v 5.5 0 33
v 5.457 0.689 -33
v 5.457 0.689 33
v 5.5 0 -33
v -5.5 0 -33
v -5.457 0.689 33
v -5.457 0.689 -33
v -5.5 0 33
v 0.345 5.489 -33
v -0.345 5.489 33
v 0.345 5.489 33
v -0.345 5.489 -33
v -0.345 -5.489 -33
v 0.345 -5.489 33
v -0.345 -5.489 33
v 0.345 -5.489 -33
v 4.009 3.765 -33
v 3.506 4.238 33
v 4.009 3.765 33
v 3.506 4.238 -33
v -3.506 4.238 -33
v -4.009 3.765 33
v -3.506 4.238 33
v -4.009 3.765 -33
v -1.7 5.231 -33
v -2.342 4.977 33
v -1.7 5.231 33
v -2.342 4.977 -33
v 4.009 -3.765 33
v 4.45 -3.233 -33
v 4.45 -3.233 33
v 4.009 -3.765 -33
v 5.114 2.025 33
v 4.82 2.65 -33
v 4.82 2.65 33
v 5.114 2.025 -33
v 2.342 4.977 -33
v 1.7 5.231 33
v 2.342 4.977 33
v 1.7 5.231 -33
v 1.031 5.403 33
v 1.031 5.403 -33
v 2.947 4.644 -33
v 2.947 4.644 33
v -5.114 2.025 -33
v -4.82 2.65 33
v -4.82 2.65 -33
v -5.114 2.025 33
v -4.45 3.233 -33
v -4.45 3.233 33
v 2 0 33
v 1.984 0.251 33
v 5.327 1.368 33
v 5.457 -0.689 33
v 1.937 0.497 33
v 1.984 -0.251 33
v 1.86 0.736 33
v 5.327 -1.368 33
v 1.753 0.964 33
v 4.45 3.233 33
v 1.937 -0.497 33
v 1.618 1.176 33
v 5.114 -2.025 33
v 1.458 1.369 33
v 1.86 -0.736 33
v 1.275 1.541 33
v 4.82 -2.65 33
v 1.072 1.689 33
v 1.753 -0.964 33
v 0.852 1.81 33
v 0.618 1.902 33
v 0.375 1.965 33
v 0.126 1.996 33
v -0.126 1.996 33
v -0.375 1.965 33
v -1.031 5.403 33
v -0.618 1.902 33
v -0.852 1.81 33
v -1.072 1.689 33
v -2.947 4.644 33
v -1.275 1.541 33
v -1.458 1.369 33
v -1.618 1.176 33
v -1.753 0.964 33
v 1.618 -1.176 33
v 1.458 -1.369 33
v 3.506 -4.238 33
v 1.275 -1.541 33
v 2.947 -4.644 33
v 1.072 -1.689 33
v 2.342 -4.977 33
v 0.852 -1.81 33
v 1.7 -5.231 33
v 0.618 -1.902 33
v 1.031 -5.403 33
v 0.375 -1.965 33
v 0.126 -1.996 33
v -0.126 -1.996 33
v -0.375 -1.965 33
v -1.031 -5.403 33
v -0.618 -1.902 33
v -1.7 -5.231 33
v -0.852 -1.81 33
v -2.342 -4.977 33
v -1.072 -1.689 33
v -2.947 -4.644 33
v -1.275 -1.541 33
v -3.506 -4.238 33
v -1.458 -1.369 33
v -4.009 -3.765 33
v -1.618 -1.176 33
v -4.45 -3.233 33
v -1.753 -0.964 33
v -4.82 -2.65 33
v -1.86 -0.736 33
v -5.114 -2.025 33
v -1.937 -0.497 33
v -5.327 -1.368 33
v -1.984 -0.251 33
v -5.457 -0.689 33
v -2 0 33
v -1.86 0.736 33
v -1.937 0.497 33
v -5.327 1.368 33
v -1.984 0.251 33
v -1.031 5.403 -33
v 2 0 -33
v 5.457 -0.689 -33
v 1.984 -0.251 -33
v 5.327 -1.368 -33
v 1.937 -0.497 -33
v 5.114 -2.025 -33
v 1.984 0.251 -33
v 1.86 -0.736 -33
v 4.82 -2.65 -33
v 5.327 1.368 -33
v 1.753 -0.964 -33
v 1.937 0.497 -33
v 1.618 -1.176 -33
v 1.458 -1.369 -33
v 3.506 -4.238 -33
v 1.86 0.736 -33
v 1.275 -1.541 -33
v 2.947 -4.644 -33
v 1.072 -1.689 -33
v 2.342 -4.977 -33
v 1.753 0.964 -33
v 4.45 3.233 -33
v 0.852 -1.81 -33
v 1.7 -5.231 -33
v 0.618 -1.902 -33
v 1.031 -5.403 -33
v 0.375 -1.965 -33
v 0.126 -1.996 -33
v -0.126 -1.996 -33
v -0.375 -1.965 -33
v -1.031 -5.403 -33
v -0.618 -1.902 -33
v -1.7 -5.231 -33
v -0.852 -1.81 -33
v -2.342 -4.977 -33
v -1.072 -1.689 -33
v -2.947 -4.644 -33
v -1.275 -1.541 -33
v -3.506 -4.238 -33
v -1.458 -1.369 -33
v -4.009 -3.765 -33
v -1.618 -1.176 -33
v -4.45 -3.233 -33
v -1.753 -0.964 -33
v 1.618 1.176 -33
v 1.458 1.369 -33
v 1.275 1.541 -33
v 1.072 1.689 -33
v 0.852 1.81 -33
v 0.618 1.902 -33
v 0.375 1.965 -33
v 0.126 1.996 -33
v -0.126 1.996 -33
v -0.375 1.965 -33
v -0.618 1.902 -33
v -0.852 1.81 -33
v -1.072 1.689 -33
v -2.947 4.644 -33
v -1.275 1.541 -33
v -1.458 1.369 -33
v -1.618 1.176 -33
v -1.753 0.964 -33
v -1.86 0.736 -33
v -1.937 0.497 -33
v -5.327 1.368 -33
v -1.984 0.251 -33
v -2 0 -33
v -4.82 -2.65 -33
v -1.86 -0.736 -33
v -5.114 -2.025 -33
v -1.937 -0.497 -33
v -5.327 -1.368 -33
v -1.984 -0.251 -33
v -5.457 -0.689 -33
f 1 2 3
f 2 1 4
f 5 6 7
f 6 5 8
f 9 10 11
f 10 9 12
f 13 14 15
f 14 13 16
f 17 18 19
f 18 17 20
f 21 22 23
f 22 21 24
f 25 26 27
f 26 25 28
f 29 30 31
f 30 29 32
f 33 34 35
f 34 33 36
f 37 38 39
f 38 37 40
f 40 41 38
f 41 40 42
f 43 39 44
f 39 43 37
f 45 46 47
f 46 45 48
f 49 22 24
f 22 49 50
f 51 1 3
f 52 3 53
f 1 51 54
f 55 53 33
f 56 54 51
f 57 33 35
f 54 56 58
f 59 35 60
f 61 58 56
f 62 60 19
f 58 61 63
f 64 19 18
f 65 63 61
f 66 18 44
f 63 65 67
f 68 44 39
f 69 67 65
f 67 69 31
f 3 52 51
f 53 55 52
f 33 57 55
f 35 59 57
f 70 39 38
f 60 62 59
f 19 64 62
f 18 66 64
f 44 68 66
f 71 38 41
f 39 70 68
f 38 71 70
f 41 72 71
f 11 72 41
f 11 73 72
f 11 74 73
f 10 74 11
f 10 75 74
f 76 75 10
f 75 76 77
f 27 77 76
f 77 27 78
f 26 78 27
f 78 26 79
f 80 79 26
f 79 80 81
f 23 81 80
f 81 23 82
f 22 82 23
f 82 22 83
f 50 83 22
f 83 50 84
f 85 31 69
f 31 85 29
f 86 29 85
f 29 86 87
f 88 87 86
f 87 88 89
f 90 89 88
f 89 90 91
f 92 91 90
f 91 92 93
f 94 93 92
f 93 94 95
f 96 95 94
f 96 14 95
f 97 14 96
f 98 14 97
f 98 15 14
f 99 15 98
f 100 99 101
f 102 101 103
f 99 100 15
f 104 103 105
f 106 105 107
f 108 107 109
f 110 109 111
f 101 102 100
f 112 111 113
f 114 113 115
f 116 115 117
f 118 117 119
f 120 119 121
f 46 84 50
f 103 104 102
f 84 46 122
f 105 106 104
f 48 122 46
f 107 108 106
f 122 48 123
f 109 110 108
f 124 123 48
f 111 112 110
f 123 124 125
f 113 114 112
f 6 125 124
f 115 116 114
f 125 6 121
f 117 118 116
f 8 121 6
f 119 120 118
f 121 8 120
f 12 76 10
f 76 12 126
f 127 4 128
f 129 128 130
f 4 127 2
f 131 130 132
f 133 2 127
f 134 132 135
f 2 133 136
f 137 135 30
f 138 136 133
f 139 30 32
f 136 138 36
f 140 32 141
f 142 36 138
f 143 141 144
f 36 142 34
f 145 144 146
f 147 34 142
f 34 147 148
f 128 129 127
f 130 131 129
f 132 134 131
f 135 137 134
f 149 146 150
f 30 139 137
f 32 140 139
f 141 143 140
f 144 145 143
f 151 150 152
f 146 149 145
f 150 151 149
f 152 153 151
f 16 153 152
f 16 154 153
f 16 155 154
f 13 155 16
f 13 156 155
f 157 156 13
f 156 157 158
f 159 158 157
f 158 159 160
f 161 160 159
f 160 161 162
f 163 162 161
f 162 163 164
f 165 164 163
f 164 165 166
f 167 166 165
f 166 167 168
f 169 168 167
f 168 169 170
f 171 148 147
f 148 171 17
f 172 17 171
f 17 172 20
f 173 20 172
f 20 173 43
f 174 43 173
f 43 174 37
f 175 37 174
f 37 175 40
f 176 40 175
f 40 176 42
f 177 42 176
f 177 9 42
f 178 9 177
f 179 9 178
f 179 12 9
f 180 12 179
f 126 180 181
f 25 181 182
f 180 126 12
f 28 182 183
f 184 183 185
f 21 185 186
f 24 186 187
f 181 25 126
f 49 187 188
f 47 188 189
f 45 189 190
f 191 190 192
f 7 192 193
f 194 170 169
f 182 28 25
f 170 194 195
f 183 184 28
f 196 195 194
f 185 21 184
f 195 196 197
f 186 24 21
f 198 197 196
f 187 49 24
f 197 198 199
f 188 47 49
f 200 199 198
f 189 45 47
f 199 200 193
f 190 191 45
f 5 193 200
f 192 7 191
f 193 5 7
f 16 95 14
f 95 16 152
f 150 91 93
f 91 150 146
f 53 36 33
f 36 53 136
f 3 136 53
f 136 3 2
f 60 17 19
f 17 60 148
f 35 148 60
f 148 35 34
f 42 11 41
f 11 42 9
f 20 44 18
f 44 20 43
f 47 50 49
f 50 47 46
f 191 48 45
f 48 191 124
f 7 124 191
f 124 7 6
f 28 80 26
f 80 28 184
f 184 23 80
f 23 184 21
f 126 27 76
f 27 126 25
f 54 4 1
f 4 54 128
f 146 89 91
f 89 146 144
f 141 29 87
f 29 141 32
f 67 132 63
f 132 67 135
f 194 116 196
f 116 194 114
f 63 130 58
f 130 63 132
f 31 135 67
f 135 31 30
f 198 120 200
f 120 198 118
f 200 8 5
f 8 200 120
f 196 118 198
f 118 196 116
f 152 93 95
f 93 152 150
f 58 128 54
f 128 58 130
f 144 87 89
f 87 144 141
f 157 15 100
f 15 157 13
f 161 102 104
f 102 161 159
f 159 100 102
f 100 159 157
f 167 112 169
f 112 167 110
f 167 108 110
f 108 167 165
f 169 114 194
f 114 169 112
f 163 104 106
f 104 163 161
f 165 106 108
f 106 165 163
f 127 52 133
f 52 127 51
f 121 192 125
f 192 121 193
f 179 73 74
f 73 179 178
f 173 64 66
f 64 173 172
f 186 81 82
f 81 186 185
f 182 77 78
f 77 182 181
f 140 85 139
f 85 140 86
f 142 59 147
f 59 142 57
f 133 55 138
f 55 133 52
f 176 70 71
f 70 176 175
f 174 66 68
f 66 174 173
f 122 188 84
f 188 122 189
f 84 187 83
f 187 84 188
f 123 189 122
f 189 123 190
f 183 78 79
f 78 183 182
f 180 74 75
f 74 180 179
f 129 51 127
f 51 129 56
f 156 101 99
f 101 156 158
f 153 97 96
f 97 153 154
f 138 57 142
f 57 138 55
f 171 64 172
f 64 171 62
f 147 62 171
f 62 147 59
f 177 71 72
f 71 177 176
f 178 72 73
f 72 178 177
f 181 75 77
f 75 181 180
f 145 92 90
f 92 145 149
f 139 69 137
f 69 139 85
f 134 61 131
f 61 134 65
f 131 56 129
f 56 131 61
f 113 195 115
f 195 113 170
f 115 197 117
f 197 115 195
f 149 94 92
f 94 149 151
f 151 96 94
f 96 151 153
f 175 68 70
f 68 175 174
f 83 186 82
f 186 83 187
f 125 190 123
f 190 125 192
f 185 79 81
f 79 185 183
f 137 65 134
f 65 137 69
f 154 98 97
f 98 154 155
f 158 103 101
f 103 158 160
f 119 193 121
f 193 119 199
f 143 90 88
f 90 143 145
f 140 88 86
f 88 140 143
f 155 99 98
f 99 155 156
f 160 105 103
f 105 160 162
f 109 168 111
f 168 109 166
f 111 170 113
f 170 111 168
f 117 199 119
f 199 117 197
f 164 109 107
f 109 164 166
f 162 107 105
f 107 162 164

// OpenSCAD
$fn = 50;


difference() {
	union() {
		translate(v = [0, 0, -33.0000000000]) {
			cylinder(h = 66, r = 5.5000000000);
		}
	}
	union() {
		translate(v = [0, 0, -100.0000000000]) {
			cylinder(h = 200, r = 2);
		}
	}
}
